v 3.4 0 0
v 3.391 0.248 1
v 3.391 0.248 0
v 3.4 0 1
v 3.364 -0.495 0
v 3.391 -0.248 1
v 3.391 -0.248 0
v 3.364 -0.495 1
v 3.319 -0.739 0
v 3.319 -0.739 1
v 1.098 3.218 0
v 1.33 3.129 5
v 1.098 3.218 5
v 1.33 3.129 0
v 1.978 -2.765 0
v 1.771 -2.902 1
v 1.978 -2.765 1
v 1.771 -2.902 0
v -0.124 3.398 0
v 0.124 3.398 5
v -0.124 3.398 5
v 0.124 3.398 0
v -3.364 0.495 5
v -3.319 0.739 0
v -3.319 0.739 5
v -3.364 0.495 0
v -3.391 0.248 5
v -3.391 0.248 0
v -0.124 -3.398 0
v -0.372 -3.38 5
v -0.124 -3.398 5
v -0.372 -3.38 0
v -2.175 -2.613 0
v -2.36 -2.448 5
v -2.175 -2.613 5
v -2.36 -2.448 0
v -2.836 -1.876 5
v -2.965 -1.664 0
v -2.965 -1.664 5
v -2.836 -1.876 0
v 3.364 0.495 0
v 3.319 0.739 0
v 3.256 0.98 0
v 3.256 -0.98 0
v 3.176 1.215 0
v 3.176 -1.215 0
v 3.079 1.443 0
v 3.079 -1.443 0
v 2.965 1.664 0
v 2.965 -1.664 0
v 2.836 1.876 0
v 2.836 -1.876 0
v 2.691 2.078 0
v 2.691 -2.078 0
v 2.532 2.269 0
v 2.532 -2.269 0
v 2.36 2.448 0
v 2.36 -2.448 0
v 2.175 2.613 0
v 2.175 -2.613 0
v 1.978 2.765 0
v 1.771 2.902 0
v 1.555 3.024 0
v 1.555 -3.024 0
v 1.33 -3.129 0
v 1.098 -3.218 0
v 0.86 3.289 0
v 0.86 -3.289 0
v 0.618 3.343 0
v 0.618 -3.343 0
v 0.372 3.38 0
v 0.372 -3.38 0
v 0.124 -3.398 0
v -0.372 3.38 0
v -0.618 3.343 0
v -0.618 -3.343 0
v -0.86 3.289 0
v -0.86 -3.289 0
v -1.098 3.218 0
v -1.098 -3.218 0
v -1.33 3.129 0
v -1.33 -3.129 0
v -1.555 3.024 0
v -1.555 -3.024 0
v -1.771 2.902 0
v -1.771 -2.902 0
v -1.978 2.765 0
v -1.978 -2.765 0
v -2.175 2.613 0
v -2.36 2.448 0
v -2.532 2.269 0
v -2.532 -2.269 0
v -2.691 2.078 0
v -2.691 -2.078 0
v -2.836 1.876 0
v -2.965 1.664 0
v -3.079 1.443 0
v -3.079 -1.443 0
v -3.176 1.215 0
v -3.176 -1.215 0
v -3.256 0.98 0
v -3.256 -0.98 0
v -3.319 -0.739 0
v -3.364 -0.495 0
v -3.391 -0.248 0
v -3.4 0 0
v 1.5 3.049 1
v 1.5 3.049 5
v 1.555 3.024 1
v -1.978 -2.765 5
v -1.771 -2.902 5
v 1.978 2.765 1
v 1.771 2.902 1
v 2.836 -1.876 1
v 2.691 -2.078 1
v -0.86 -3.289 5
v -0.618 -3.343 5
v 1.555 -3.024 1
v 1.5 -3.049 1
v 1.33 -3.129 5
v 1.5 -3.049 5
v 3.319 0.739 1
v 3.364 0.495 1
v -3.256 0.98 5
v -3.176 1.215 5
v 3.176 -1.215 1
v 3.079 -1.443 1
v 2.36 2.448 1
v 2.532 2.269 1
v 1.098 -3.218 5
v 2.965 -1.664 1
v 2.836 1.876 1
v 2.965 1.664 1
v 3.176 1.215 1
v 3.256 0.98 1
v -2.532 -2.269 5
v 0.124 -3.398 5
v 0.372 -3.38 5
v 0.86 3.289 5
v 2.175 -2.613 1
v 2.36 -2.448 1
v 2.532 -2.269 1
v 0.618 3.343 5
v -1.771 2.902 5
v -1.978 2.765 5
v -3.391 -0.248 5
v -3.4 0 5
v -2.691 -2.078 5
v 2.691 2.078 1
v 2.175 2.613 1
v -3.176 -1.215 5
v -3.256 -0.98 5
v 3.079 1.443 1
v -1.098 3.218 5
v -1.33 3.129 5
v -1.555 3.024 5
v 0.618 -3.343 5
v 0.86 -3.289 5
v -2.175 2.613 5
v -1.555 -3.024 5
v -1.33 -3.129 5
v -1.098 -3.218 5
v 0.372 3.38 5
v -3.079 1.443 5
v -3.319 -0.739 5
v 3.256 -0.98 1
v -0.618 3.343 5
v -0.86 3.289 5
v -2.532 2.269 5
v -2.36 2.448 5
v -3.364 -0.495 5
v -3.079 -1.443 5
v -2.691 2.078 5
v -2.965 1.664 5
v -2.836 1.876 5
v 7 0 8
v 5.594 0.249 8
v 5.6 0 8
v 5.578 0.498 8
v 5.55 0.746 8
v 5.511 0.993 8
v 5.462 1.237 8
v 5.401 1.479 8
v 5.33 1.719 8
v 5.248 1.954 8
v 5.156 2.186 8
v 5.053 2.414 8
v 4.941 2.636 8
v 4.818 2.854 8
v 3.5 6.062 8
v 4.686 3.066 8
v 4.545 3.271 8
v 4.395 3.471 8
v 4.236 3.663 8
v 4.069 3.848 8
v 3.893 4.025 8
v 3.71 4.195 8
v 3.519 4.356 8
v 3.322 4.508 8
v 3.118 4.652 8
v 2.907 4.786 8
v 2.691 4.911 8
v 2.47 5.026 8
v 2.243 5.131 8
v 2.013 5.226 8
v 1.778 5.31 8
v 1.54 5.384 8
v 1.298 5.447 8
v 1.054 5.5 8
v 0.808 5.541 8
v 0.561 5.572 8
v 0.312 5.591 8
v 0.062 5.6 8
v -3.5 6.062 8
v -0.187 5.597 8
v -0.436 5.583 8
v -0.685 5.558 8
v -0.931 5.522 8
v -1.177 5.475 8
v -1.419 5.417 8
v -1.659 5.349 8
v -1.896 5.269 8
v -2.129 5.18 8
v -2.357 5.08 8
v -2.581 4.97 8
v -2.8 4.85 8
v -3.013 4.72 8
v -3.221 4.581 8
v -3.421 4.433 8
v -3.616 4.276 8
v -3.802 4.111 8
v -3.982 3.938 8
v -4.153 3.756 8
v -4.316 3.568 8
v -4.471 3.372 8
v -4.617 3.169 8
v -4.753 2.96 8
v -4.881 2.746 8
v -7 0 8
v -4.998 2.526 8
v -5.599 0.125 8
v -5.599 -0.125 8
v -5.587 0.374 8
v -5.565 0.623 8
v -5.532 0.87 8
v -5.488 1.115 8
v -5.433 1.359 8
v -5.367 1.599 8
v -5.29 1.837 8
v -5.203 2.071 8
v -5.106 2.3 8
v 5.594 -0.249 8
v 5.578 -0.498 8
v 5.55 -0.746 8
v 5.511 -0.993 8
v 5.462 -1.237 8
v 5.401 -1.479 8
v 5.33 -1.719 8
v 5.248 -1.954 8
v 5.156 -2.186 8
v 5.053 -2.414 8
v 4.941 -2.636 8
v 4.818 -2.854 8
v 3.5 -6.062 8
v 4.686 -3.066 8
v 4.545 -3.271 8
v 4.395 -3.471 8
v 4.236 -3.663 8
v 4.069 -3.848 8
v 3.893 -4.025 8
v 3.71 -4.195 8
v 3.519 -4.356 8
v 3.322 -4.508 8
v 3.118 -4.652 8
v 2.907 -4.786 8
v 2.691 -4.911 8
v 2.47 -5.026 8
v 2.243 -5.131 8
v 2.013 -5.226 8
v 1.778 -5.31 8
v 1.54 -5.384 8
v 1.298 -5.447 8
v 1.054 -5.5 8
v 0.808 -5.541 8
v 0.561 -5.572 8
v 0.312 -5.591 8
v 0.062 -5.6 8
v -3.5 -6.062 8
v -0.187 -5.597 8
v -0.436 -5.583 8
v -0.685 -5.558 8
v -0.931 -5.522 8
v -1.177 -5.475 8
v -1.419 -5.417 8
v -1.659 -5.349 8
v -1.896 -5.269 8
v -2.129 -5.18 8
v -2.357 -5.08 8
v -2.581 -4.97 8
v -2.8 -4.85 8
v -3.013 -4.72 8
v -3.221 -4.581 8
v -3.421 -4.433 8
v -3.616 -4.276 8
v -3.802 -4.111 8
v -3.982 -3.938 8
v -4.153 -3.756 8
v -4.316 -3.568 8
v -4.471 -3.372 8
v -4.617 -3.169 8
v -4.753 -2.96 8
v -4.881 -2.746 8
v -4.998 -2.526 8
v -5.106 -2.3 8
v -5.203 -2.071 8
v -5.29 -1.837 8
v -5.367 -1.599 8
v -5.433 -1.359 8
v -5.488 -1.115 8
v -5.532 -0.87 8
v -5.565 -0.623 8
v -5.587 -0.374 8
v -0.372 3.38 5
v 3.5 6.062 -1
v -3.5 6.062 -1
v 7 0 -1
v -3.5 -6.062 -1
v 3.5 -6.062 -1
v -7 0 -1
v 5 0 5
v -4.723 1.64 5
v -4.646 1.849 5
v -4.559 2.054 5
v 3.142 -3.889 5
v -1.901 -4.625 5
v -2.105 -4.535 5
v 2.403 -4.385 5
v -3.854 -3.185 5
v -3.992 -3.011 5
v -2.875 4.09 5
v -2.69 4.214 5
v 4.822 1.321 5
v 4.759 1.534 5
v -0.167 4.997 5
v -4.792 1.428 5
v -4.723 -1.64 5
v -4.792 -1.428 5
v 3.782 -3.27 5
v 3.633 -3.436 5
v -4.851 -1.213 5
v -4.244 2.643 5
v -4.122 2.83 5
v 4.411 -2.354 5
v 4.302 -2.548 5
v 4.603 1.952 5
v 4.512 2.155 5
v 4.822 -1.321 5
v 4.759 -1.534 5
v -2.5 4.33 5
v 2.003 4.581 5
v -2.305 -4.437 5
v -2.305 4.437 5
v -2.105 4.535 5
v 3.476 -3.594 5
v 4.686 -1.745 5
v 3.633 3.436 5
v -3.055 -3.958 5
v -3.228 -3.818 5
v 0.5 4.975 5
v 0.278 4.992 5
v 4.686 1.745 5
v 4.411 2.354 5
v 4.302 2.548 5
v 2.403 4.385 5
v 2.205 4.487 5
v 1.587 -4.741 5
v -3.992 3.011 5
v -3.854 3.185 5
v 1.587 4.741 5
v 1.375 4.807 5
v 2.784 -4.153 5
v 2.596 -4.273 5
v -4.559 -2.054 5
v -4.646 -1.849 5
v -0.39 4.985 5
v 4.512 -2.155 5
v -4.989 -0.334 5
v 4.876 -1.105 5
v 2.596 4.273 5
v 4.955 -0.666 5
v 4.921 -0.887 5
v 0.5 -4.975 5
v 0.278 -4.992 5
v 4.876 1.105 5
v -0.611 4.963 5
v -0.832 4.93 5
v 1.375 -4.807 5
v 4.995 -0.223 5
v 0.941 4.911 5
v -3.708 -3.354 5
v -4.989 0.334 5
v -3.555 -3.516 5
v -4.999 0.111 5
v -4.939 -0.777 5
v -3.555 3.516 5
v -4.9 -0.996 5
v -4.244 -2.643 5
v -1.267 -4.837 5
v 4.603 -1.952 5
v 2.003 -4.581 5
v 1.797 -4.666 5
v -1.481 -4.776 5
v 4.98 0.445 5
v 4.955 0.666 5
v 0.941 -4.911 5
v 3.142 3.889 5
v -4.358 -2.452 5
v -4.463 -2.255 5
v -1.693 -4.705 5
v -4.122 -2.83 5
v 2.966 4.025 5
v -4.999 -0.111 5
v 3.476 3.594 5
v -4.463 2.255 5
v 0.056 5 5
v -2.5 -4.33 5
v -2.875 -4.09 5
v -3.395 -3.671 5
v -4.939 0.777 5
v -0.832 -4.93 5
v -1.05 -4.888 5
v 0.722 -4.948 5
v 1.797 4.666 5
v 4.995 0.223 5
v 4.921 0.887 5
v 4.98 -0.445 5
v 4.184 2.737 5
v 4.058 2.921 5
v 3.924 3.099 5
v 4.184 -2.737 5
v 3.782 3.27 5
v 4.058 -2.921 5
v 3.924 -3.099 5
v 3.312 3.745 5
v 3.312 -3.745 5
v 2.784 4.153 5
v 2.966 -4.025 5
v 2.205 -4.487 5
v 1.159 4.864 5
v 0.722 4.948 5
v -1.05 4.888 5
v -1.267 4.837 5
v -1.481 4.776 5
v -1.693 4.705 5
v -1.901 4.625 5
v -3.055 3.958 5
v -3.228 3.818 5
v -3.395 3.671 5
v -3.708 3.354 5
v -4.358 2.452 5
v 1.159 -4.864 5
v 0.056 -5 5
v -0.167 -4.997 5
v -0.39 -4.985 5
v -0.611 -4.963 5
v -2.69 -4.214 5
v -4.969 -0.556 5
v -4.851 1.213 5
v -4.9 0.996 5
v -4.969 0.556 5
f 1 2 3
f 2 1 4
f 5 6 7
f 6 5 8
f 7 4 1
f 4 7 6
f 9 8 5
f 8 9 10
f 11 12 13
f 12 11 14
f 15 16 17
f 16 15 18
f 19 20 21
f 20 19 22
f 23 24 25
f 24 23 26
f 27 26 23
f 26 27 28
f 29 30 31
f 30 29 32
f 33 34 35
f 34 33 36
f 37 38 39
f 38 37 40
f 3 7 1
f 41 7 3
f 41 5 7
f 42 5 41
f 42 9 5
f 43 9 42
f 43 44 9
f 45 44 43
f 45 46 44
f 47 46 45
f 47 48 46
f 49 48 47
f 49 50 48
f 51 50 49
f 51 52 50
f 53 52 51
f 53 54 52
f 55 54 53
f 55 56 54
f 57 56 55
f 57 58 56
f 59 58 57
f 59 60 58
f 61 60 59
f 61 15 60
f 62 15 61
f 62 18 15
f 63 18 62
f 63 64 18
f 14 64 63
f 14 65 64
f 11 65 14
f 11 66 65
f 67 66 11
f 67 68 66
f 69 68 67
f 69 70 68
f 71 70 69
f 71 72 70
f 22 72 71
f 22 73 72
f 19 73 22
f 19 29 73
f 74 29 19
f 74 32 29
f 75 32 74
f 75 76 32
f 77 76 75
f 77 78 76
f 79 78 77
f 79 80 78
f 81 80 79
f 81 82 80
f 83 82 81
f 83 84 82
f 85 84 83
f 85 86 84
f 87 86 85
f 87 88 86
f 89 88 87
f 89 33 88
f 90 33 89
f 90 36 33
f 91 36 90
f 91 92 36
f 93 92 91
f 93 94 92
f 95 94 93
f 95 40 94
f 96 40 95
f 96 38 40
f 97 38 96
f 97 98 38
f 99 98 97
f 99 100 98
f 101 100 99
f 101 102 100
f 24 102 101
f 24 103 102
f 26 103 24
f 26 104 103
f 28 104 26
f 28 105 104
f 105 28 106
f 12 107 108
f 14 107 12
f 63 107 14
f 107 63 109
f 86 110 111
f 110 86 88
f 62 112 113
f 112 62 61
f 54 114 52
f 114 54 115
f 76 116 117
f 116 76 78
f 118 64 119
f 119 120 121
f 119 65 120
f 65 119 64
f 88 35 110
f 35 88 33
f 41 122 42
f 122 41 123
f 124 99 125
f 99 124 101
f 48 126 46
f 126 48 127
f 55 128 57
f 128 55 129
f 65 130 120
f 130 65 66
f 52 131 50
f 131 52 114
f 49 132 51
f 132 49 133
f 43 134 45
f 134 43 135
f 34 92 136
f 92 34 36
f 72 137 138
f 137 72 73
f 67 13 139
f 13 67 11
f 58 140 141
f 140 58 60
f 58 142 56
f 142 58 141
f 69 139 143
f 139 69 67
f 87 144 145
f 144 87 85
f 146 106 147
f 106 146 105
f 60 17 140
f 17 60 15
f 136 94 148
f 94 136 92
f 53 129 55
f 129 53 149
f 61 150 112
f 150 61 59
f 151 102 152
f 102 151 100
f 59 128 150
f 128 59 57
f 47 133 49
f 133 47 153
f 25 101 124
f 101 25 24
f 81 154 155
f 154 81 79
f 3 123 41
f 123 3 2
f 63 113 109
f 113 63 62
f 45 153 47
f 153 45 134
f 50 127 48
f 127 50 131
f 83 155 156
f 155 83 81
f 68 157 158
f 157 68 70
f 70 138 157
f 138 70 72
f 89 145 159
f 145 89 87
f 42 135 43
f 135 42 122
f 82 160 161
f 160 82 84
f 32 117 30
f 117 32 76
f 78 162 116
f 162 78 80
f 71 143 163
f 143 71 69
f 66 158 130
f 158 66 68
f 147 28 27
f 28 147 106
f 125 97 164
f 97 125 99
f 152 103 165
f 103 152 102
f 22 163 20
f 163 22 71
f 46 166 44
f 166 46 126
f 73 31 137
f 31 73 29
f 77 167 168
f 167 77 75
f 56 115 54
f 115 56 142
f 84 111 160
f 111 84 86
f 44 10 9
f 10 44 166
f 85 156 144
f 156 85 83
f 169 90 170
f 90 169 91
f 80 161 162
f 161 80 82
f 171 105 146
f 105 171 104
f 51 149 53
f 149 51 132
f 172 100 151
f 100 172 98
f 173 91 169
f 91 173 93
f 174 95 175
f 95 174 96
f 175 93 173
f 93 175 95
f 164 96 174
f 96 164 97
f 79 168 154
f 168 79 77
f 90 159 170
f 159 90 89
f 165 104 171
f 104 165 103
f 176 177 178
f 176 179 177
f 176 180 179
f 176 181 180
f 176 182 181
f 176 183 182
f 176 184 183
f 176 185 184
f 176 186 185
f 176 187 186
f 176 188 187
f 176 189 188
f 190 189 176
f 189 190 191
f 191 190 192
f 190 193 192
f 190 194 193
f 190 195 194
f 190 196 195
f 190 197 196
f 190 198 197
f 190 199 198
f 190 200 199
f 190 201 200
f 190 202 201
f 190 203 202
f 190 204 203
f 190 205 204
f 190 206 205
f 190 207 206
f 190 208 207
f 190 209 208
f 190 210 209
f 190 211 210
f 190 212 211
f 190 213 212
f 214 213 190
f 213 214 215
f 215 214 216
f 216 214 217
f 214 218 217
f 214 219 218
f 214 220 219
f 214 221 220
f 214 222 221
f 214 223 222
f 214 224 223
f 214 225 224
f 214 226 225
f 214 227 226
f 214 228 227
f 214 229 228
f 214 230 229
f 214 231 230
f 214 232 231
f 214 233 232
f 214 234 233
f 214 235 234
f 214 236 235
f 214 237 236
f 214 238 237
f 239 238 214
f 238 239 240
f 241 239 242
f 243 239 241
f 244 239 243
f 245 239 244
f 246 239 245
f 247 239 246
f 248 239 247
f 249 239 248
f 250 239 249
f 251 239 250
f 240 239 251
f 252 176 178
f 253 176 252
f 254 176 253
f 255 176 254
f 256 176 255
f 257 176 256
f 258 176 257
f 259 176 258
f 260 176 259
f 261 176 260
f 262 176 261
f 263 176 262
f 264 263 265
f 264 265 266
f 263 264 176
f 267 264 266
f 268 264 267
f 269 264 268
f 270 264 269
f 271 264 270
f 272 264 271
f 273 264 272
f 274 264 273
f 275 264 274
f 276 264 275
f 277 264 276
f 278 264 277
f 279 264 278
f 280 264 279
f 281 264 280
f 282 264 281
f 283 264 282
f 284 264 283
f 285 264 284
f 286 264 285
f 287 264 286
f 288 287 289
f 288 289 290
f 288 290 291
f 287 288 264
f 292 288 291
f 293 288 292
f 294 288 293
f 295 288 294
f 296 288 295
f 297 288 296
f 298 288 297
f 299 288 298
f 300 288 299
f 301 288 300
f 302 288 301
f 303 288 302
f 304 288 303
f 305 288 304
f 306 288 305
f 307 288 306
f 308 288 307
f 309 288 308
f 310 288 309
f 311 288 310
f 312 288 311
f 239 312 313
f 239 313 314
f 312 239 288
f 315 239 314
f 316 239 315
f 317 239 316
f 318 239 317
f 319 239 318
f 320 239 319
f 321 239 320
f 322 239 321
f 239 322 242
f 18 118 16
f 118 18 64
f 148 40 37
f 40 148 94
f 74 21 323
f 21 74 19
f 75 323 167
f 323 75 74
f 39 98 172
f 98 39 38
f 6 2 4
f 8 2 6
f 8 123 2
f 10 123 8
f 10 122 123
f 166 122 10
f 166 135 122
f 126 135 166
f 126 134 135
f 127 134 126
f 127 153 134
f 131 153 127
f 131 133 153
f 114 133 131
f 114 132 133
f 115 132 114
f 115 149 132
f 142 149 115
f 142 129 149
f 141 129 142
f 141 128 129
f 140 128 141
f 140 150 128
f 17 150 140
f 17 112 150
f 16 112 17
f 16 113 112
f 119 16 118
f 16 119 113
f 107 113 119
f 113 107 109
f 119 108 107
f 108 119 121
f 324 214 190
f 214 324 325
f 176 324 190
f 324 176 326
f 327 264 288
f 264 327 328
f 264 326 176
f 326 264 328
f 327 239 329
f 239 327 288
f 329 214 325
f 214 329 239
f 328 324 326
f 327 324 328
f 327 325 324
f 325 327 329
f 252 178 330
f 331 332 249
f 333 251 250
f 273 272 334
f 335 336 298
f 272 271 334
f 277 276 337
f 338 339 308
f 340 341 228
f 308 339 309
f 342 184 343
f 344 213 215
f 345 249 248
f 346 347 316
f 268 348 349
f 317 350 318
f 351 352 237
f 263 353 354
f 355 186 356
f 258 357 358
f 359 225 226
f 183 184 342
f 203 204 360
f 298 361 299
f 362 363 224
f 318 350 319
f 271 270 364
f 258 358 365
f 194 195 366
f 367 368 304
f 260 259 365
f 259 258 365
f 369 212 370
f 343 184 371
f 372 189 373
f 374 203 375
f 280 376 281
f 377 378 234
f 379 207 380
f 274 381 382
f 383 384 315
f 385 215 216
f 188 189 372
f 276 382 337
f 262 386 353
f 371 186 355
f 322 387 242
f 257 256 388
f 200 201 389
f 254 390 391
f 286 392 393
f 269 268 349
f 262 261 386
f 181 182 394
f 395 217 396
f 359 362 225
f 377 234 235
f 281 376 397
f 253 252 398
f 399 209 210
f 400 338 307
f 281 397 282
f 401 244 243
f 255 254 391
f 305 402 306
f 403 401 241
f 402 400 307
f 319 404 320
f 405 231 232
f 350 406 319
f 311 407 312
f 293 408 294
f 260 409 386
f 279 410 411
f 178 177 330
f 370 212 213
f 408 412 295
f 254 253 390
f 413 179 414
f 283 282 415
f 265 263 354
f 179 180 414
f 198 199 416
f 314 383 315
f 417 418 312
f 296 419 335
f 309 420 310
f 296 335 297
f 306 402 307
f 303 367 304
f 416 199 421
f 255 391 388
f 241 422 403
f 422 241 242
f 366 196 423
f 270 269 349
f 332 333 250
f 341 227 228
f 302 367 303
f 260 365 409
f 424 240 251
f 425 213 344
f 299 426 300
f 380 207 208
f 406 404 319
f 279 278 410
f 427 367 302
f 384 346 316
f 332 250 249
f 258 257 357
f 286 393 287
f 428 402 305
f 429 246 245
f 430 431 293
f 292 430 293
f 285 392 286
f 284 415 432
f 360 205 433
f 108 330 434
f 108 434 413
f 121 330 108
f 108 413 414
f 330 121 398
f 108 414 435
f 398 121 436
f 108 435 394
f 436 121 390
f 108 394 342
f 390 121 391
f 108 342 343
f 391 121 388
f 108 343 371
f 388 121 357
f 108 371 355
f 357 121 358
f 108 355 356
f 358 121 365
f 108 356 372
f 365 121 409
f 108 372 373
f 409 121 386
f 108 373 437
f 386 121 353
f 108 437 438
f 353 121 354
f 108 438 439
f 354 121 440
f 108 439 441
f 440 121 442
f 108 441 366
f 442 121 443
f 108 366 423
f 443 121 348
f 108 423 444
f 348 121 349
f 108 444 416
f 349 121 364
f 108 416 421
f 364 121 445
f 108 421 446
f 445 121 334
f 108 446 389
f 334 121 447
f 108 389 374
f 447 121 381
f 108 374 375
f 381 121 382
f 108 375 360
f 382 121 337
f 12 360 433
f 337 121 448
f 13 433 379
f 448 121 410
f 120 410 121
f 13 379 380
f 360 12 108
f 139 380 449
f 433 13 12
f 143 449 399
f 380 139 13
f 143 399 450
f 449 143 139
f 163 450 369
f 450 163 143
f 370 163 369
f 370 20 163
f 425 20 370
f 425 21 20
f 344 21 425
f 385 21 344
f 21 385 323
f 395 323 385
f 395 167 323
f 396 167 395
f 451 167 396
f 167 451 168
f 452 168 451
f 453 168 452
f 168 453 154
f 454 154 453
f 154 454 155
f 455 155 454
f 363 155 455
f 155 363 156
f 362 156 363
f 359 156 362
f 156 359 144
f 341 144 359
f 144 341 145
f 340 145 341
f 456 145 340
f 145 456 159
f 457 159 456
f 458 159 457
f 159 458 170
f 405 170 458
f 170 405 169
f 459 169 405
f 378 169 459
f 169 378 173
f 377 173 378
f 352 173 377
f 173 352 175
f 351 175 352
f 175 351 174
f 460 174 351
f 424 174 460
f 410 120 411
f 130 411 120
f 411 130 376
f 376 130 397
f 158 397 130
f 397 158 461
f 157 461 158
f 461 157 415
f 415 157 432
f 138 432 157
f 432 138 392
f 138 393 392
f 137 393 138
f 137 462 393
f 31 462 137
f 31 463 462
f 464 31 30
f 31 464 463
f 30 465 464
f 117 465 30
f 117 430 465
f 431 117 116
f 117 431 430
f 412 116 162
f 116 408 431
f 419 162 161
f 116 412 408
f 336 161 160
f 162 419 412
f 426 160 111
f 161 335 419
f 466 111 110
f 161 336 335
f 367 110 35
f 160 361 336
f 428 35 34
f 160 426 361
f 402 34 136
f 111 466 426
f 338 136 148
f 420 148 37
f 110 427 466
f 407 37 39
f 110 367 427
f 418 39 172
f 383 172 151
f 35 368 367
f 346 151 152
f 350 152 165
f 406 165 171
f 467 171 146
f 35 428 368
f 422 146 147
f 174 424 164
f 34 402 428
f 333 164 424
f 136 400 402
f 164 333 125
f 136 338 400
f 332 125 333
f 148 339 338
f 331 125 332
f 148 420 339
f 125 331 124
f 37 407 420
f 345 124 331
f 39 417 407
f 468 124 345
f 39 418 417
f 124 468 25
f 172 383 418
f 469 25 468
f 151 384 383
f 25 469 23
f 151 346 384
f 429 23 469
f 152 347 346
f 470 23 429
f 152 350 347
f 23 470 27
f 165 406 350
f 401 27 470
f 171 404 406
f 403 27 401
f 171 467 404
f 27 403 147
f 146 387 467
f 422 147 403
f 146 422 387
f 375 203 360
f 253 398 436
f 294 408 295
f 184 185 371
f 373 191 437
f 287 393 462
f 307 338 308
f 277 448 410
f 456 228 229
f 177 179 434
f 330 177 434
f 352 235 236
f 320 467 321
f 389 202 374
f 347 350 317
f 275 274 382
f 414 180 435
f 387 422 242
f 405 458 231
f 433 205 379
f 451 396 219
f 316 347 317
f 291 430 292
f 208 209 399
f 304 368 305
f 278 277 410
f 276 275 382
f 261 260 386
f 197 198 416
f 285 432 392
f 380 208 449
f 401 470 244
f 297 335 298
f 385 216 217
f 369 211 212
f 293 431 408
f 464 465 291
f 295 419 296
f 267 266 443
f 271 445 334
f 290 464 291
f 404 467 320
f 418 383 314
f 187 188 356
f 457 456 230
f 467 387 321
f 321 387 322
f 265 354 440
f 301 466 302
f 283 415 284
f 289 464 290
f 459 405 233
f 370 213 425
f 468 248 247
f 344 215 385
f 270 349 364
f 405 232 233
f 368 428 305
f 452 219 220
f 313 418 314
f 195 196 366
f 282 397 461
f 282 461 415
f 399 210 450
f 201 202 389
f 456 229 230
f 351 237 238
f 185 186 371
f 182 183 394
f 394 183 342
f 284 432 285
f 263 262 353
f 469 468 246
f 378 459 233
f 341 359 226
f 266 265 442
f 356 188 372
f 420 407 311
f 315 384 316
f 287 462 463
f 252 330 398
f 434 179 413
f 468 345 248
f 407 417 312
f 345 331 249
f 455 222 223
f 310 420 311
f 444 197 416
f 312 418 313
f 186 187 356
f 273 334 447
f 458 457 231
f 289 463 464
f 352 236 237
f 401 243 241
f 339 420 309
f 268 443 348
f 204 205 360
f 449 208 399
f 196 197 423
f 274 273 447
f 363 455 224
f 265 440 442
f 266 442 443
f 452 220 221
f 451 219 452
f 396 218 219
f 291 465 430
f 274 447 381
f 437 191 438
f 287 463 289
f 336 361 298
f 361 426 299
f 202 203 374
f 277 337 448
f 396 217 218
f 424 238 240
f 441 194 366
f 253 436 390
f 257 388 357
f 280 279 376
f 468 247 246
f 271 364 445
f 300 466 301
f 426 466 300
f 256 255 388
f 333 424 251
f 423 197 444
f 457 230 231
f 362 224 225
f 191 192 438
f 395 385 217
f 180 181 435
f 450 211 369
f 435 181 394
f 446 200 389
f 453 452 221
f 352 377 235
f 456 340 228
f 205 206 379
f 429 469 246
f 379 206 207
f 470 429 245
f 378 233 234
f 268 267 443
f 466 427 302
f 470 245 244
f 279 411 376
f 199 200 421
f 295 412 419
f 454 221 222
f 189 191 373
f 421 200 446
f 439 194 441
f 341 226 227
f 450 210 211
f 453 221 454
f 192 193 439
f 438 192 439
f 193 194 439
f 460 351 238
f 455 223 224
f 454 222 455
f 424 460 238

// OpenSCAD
// File: Encoder knob.scad
// Description: Knob for an EC11 rotary encoder with a 6mm D-shaft
// Author: Turi Scandurra
// Website: https://www.turiscandurra.com/circuits
// Date: 2024-09-20
// License: MIT License

roof_height = 1;
tolerance = 0.4;
shaft_r = 3 + tolerance;

module knob(height, inset, radius, sides) {
    difference() {
        cylinder(r=radius,h=height,$fn=sides);
        difference() {
            cylinder(r=shaft_r,h=height-roof_height,$fa=0.01,$fs=0.25);
            translate([1.5,-4,0])
                cube([4,8,height-2]);
        }
        cylinder(r1=5.6,r2=5.0,h=inset,$fa=0.01,$fs=0.25);
    }
}

translate([0,0,8])
    rotate([180,0,0])
        knob(9, 3, 7, 6);
